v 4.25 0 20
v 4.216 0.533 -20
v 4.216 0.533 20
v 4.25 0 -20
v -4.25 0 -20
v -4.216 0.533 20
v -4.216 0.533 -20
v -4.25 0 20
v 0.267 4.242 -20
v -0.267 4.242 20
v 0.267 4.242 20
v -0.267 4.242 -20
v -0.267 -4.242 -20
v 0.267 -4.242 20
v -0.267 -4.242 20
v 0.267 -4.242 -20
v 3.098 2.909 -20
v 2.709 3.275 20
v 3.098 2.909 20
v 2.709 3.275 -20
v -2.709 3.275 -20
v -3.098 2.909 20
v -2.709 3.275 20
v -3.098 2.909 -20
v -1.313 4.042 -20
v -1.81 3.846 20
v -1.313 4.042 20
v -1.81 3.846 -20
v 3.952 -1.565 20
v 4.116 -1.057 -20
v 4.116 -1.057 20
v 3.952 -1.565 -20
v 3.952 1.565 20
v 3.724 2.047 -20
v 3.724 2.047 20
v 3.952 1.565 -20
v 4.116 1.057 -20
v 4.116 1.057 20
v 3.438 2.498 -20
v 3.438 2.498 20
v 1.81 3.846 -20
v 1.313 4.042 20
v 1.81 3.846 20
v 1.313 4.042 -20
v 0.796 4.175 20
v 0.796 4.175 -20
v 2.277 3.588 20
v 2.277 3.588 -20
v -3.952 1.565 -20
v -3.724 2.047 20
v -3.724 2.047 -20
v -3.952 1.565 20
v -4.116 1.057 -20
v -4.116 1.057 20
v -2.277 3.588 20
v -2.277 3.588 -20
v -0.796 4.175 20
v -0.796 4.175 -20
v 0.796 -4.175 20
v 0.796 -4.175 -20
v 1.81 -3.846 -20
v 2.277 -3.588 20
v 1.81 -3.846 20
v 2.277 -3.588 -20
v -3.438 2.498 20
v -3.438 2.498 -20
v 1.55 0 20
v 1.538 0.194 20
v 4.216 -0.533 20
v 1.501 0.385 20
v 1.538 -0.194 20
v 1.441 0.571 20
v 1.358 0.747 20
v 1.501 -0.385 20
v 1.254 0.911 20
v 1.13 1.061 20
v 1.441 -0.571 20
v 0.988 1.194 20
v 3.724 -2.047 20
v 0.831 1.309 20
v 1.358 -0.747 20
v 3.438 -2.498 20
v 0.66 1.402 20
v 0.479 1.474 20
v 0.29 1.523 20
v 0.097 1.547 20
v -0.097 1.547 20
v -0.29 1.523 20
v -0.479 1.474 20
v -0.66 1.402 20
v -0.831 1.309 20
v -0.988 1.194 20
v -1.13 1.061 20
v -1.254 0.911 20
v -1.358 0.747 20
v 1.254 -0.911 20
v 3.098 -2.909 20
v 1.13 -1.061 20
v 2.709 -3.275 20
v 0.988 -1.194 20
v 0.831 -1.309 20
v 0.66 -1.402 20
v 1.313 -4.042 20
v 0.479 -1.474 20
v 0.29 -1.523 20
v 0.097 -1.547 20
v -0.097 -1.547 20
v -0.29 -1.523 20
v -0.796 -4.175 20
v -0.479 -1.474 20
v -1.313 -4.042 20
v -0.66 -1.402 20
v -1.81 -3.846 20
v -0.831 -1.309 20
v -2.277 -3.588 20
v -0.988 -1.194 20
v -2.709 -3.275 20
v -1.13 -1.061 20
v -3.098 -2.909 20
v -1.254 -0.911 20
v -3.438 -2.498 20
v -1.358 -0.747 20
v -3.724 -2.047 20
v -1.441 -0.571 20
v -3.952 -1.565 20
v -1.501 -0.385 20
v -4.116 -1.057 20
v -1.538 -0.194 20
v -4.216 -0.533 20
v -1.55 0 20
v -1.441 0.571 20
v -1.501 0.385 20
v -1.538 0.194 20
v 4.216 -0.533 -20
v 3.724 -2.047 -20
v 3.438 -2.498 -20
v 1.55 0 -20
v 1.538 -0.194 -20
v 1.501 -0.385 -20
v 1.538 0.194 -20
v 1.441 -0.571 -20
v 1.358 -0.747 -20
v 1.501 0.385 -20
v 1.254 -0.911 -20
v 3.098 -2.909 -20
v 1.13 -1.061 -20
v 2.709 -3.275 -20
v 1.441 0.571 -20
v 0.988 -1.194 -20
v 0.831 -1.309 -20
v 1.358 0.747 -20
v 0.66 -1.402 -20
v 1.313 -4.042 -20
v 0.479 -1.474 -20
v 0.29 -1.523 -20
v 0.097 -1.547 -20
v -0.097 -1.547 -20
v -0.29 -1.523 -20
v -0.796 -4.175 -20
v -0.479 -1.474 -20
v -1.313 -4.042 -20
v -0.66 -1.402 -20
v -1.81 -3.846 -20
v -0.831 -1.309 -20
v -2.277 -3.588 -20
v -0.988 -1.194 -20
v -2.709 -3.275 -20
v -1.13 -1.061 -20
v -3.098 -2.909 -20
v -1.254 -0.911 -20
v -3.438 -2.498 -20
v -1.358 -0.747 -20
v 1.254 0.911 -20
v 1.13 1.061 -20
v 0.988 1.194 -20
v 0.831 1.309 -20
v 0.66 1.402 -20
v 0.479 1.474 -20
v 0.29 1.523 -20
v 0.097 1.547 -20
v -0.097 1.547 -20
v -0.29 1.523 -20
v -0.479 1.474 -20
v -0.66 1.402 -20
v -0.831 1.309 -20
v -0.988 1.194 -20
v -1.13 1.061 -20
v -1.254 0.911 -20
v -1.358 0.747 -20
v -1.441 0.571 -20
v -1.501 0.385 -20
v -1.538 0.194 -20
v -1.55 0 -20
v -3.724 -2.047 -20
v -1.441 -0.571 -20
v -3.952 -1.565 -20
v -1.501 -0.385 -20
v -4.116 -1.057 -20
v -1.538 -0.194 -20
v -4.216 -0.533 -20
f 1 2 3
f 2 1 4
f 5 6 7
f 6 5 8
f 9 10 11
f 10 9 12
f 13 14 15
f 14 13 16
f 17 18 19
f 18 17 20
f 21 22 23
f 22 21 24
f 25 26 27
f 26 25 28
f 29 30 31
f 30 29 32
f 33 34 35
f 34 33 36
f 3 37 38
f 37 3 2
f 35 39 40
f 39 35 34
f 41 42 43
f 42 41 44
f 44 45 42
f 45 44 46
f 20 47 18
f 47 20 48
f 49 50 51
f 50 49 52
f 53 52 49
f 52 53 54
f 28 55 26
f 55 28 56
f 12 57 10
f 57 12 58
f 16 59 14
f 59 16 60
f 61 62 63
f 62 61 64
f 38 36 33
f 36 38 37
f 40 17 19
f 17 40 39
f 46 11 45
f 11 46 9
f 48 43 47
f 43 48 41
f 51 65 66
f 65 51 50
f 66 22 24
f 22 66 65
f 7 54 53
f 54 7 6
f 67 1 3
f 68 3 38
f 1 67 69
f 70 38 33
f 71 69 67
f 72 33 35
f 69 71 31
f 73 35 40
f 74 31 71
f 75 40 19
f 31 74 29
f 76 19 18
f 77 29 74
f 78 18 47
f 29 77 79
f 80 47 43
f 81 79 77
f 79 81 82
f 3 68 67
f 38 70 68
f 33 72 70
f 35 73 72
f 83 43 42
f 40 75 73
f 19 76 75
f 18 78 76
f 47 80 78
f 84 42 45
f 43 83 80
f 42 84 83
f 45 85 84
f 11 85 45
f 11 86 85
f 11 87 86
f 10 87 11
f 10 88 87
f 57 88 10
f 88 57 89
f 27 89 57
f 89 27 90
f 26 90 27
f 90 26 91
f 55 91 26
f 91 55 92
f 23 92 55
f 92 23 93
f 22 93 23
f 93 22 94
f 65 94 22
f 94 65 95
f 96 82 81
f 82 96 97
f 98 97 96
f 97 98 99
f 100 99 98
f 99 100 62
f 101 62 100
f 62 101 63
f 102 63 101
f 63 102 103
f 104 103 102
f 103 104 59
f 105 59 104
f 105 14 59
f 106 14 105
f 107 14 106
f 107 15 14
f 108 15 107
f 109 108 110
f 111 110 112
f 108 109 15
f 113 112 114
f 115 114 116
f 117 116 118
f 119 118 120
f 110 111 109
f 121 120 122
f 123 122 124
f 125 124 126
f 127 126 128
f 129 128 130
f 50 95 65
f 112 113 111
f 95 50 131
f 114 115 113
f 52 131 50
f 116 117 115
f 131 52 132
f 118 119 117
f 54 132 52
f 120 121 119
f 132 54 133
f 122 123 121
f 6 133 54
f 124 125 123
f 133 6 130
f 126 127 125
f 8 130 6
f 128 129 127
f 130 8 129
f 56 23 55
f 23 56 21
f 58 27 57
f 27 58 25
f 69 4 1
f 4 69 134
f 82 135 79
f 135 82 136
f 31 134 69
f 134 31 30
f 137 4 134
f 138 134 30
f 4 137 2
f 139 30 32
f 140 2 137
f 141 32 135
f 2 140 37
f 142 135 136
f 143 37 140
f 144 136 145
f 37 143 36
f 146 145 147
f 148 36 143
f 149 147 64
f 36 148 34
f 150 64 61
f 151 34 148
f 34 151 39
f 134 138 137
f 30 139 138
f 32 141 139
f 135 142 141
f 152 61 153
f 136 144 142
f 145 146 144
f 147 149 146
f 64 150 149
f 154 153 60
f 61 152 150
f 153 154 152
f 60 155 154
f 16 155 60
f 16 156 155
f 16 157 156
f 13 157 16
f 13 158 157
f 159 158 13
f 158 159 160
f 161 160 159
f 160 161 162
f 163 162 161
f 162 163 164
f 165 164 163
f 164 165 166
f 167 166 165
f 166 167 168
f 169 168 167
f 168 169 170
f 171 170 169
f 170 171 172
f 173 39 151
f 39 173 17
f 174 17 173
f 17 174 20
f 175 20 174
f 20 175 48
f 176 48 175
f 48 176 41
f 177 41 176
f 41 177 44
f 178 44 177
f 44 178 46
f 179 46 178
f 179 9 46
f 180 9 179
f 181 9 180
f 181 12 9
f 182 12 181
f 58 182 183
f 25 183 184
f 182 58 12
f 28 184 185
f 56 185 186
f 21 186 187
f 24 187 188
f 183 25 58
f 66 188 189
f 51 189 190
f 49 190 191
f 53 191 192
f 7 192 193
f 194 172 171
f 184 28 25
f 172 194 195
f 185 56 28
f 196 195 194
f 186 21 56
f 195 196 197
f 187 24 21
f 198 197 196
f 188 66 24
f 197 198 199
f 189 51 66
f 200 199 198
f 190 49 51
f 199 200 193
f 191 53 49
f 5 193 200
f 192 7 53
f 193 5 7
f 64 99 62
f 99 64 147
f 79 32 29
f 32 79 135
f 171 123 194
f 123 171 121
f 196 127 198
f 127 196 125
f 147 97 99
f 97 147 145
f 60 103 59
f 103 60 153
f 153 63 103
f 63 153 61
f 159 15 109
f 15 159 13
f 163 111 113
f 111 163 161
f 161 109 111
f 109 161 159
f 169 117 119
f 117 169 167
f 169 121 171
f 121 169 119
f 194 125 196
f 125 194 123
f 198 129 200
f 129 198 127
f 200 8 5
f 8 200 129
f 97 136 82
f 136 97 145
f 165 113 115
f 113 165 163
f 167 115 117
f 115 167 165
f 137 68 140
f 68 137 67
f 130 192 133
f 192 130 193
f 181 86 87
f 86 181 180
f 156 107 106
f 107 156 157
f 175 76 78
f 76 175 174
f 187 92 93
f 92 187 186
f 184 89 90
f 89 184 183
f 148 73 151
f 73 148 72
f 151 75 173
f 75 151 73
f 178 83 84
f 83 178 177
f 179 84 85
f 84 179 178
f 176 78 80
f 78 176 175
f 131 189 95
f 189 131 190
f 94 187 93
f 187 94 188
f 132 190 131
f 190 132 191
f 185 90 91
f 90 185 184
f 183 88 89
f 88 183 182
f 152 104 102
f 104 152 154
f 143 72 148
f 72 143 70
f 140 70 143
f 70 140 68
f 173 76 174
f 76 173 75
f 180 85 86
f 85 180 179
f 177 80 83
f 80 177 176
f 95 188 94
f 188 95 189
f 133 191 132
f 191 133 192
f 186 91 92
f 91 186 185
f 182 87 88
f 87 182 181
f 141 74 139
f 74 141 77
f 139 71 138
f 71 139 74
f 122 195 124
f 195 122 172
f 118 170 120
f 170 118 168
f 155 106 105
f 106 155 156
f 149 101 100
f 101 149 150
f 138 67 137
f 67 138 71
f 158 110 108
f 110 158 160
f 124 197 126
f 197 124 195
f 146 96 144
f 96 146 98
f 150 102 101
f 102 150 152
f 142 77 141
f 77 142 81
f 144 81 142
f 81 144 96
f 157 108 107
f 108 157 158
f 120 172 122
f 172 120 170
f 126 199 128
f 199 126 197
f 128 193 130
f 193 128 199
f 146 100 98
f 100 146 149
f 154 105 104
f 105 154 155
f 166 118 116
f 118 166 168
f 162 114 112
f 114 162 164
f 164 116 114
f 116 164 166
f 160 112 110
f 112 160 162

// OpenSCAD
$fn = 50;


difference() {
	union() {
		translate(v = [0, 0, -20.0000000000]) {
			cylinder(h = 40, r = 4.2500000000);
		}
	}
	union() {
		translate(v = [0, 0, -100.0000000000]) {
			cylinder(h = 200, r = 1.5500000000);
		}
	}
}
